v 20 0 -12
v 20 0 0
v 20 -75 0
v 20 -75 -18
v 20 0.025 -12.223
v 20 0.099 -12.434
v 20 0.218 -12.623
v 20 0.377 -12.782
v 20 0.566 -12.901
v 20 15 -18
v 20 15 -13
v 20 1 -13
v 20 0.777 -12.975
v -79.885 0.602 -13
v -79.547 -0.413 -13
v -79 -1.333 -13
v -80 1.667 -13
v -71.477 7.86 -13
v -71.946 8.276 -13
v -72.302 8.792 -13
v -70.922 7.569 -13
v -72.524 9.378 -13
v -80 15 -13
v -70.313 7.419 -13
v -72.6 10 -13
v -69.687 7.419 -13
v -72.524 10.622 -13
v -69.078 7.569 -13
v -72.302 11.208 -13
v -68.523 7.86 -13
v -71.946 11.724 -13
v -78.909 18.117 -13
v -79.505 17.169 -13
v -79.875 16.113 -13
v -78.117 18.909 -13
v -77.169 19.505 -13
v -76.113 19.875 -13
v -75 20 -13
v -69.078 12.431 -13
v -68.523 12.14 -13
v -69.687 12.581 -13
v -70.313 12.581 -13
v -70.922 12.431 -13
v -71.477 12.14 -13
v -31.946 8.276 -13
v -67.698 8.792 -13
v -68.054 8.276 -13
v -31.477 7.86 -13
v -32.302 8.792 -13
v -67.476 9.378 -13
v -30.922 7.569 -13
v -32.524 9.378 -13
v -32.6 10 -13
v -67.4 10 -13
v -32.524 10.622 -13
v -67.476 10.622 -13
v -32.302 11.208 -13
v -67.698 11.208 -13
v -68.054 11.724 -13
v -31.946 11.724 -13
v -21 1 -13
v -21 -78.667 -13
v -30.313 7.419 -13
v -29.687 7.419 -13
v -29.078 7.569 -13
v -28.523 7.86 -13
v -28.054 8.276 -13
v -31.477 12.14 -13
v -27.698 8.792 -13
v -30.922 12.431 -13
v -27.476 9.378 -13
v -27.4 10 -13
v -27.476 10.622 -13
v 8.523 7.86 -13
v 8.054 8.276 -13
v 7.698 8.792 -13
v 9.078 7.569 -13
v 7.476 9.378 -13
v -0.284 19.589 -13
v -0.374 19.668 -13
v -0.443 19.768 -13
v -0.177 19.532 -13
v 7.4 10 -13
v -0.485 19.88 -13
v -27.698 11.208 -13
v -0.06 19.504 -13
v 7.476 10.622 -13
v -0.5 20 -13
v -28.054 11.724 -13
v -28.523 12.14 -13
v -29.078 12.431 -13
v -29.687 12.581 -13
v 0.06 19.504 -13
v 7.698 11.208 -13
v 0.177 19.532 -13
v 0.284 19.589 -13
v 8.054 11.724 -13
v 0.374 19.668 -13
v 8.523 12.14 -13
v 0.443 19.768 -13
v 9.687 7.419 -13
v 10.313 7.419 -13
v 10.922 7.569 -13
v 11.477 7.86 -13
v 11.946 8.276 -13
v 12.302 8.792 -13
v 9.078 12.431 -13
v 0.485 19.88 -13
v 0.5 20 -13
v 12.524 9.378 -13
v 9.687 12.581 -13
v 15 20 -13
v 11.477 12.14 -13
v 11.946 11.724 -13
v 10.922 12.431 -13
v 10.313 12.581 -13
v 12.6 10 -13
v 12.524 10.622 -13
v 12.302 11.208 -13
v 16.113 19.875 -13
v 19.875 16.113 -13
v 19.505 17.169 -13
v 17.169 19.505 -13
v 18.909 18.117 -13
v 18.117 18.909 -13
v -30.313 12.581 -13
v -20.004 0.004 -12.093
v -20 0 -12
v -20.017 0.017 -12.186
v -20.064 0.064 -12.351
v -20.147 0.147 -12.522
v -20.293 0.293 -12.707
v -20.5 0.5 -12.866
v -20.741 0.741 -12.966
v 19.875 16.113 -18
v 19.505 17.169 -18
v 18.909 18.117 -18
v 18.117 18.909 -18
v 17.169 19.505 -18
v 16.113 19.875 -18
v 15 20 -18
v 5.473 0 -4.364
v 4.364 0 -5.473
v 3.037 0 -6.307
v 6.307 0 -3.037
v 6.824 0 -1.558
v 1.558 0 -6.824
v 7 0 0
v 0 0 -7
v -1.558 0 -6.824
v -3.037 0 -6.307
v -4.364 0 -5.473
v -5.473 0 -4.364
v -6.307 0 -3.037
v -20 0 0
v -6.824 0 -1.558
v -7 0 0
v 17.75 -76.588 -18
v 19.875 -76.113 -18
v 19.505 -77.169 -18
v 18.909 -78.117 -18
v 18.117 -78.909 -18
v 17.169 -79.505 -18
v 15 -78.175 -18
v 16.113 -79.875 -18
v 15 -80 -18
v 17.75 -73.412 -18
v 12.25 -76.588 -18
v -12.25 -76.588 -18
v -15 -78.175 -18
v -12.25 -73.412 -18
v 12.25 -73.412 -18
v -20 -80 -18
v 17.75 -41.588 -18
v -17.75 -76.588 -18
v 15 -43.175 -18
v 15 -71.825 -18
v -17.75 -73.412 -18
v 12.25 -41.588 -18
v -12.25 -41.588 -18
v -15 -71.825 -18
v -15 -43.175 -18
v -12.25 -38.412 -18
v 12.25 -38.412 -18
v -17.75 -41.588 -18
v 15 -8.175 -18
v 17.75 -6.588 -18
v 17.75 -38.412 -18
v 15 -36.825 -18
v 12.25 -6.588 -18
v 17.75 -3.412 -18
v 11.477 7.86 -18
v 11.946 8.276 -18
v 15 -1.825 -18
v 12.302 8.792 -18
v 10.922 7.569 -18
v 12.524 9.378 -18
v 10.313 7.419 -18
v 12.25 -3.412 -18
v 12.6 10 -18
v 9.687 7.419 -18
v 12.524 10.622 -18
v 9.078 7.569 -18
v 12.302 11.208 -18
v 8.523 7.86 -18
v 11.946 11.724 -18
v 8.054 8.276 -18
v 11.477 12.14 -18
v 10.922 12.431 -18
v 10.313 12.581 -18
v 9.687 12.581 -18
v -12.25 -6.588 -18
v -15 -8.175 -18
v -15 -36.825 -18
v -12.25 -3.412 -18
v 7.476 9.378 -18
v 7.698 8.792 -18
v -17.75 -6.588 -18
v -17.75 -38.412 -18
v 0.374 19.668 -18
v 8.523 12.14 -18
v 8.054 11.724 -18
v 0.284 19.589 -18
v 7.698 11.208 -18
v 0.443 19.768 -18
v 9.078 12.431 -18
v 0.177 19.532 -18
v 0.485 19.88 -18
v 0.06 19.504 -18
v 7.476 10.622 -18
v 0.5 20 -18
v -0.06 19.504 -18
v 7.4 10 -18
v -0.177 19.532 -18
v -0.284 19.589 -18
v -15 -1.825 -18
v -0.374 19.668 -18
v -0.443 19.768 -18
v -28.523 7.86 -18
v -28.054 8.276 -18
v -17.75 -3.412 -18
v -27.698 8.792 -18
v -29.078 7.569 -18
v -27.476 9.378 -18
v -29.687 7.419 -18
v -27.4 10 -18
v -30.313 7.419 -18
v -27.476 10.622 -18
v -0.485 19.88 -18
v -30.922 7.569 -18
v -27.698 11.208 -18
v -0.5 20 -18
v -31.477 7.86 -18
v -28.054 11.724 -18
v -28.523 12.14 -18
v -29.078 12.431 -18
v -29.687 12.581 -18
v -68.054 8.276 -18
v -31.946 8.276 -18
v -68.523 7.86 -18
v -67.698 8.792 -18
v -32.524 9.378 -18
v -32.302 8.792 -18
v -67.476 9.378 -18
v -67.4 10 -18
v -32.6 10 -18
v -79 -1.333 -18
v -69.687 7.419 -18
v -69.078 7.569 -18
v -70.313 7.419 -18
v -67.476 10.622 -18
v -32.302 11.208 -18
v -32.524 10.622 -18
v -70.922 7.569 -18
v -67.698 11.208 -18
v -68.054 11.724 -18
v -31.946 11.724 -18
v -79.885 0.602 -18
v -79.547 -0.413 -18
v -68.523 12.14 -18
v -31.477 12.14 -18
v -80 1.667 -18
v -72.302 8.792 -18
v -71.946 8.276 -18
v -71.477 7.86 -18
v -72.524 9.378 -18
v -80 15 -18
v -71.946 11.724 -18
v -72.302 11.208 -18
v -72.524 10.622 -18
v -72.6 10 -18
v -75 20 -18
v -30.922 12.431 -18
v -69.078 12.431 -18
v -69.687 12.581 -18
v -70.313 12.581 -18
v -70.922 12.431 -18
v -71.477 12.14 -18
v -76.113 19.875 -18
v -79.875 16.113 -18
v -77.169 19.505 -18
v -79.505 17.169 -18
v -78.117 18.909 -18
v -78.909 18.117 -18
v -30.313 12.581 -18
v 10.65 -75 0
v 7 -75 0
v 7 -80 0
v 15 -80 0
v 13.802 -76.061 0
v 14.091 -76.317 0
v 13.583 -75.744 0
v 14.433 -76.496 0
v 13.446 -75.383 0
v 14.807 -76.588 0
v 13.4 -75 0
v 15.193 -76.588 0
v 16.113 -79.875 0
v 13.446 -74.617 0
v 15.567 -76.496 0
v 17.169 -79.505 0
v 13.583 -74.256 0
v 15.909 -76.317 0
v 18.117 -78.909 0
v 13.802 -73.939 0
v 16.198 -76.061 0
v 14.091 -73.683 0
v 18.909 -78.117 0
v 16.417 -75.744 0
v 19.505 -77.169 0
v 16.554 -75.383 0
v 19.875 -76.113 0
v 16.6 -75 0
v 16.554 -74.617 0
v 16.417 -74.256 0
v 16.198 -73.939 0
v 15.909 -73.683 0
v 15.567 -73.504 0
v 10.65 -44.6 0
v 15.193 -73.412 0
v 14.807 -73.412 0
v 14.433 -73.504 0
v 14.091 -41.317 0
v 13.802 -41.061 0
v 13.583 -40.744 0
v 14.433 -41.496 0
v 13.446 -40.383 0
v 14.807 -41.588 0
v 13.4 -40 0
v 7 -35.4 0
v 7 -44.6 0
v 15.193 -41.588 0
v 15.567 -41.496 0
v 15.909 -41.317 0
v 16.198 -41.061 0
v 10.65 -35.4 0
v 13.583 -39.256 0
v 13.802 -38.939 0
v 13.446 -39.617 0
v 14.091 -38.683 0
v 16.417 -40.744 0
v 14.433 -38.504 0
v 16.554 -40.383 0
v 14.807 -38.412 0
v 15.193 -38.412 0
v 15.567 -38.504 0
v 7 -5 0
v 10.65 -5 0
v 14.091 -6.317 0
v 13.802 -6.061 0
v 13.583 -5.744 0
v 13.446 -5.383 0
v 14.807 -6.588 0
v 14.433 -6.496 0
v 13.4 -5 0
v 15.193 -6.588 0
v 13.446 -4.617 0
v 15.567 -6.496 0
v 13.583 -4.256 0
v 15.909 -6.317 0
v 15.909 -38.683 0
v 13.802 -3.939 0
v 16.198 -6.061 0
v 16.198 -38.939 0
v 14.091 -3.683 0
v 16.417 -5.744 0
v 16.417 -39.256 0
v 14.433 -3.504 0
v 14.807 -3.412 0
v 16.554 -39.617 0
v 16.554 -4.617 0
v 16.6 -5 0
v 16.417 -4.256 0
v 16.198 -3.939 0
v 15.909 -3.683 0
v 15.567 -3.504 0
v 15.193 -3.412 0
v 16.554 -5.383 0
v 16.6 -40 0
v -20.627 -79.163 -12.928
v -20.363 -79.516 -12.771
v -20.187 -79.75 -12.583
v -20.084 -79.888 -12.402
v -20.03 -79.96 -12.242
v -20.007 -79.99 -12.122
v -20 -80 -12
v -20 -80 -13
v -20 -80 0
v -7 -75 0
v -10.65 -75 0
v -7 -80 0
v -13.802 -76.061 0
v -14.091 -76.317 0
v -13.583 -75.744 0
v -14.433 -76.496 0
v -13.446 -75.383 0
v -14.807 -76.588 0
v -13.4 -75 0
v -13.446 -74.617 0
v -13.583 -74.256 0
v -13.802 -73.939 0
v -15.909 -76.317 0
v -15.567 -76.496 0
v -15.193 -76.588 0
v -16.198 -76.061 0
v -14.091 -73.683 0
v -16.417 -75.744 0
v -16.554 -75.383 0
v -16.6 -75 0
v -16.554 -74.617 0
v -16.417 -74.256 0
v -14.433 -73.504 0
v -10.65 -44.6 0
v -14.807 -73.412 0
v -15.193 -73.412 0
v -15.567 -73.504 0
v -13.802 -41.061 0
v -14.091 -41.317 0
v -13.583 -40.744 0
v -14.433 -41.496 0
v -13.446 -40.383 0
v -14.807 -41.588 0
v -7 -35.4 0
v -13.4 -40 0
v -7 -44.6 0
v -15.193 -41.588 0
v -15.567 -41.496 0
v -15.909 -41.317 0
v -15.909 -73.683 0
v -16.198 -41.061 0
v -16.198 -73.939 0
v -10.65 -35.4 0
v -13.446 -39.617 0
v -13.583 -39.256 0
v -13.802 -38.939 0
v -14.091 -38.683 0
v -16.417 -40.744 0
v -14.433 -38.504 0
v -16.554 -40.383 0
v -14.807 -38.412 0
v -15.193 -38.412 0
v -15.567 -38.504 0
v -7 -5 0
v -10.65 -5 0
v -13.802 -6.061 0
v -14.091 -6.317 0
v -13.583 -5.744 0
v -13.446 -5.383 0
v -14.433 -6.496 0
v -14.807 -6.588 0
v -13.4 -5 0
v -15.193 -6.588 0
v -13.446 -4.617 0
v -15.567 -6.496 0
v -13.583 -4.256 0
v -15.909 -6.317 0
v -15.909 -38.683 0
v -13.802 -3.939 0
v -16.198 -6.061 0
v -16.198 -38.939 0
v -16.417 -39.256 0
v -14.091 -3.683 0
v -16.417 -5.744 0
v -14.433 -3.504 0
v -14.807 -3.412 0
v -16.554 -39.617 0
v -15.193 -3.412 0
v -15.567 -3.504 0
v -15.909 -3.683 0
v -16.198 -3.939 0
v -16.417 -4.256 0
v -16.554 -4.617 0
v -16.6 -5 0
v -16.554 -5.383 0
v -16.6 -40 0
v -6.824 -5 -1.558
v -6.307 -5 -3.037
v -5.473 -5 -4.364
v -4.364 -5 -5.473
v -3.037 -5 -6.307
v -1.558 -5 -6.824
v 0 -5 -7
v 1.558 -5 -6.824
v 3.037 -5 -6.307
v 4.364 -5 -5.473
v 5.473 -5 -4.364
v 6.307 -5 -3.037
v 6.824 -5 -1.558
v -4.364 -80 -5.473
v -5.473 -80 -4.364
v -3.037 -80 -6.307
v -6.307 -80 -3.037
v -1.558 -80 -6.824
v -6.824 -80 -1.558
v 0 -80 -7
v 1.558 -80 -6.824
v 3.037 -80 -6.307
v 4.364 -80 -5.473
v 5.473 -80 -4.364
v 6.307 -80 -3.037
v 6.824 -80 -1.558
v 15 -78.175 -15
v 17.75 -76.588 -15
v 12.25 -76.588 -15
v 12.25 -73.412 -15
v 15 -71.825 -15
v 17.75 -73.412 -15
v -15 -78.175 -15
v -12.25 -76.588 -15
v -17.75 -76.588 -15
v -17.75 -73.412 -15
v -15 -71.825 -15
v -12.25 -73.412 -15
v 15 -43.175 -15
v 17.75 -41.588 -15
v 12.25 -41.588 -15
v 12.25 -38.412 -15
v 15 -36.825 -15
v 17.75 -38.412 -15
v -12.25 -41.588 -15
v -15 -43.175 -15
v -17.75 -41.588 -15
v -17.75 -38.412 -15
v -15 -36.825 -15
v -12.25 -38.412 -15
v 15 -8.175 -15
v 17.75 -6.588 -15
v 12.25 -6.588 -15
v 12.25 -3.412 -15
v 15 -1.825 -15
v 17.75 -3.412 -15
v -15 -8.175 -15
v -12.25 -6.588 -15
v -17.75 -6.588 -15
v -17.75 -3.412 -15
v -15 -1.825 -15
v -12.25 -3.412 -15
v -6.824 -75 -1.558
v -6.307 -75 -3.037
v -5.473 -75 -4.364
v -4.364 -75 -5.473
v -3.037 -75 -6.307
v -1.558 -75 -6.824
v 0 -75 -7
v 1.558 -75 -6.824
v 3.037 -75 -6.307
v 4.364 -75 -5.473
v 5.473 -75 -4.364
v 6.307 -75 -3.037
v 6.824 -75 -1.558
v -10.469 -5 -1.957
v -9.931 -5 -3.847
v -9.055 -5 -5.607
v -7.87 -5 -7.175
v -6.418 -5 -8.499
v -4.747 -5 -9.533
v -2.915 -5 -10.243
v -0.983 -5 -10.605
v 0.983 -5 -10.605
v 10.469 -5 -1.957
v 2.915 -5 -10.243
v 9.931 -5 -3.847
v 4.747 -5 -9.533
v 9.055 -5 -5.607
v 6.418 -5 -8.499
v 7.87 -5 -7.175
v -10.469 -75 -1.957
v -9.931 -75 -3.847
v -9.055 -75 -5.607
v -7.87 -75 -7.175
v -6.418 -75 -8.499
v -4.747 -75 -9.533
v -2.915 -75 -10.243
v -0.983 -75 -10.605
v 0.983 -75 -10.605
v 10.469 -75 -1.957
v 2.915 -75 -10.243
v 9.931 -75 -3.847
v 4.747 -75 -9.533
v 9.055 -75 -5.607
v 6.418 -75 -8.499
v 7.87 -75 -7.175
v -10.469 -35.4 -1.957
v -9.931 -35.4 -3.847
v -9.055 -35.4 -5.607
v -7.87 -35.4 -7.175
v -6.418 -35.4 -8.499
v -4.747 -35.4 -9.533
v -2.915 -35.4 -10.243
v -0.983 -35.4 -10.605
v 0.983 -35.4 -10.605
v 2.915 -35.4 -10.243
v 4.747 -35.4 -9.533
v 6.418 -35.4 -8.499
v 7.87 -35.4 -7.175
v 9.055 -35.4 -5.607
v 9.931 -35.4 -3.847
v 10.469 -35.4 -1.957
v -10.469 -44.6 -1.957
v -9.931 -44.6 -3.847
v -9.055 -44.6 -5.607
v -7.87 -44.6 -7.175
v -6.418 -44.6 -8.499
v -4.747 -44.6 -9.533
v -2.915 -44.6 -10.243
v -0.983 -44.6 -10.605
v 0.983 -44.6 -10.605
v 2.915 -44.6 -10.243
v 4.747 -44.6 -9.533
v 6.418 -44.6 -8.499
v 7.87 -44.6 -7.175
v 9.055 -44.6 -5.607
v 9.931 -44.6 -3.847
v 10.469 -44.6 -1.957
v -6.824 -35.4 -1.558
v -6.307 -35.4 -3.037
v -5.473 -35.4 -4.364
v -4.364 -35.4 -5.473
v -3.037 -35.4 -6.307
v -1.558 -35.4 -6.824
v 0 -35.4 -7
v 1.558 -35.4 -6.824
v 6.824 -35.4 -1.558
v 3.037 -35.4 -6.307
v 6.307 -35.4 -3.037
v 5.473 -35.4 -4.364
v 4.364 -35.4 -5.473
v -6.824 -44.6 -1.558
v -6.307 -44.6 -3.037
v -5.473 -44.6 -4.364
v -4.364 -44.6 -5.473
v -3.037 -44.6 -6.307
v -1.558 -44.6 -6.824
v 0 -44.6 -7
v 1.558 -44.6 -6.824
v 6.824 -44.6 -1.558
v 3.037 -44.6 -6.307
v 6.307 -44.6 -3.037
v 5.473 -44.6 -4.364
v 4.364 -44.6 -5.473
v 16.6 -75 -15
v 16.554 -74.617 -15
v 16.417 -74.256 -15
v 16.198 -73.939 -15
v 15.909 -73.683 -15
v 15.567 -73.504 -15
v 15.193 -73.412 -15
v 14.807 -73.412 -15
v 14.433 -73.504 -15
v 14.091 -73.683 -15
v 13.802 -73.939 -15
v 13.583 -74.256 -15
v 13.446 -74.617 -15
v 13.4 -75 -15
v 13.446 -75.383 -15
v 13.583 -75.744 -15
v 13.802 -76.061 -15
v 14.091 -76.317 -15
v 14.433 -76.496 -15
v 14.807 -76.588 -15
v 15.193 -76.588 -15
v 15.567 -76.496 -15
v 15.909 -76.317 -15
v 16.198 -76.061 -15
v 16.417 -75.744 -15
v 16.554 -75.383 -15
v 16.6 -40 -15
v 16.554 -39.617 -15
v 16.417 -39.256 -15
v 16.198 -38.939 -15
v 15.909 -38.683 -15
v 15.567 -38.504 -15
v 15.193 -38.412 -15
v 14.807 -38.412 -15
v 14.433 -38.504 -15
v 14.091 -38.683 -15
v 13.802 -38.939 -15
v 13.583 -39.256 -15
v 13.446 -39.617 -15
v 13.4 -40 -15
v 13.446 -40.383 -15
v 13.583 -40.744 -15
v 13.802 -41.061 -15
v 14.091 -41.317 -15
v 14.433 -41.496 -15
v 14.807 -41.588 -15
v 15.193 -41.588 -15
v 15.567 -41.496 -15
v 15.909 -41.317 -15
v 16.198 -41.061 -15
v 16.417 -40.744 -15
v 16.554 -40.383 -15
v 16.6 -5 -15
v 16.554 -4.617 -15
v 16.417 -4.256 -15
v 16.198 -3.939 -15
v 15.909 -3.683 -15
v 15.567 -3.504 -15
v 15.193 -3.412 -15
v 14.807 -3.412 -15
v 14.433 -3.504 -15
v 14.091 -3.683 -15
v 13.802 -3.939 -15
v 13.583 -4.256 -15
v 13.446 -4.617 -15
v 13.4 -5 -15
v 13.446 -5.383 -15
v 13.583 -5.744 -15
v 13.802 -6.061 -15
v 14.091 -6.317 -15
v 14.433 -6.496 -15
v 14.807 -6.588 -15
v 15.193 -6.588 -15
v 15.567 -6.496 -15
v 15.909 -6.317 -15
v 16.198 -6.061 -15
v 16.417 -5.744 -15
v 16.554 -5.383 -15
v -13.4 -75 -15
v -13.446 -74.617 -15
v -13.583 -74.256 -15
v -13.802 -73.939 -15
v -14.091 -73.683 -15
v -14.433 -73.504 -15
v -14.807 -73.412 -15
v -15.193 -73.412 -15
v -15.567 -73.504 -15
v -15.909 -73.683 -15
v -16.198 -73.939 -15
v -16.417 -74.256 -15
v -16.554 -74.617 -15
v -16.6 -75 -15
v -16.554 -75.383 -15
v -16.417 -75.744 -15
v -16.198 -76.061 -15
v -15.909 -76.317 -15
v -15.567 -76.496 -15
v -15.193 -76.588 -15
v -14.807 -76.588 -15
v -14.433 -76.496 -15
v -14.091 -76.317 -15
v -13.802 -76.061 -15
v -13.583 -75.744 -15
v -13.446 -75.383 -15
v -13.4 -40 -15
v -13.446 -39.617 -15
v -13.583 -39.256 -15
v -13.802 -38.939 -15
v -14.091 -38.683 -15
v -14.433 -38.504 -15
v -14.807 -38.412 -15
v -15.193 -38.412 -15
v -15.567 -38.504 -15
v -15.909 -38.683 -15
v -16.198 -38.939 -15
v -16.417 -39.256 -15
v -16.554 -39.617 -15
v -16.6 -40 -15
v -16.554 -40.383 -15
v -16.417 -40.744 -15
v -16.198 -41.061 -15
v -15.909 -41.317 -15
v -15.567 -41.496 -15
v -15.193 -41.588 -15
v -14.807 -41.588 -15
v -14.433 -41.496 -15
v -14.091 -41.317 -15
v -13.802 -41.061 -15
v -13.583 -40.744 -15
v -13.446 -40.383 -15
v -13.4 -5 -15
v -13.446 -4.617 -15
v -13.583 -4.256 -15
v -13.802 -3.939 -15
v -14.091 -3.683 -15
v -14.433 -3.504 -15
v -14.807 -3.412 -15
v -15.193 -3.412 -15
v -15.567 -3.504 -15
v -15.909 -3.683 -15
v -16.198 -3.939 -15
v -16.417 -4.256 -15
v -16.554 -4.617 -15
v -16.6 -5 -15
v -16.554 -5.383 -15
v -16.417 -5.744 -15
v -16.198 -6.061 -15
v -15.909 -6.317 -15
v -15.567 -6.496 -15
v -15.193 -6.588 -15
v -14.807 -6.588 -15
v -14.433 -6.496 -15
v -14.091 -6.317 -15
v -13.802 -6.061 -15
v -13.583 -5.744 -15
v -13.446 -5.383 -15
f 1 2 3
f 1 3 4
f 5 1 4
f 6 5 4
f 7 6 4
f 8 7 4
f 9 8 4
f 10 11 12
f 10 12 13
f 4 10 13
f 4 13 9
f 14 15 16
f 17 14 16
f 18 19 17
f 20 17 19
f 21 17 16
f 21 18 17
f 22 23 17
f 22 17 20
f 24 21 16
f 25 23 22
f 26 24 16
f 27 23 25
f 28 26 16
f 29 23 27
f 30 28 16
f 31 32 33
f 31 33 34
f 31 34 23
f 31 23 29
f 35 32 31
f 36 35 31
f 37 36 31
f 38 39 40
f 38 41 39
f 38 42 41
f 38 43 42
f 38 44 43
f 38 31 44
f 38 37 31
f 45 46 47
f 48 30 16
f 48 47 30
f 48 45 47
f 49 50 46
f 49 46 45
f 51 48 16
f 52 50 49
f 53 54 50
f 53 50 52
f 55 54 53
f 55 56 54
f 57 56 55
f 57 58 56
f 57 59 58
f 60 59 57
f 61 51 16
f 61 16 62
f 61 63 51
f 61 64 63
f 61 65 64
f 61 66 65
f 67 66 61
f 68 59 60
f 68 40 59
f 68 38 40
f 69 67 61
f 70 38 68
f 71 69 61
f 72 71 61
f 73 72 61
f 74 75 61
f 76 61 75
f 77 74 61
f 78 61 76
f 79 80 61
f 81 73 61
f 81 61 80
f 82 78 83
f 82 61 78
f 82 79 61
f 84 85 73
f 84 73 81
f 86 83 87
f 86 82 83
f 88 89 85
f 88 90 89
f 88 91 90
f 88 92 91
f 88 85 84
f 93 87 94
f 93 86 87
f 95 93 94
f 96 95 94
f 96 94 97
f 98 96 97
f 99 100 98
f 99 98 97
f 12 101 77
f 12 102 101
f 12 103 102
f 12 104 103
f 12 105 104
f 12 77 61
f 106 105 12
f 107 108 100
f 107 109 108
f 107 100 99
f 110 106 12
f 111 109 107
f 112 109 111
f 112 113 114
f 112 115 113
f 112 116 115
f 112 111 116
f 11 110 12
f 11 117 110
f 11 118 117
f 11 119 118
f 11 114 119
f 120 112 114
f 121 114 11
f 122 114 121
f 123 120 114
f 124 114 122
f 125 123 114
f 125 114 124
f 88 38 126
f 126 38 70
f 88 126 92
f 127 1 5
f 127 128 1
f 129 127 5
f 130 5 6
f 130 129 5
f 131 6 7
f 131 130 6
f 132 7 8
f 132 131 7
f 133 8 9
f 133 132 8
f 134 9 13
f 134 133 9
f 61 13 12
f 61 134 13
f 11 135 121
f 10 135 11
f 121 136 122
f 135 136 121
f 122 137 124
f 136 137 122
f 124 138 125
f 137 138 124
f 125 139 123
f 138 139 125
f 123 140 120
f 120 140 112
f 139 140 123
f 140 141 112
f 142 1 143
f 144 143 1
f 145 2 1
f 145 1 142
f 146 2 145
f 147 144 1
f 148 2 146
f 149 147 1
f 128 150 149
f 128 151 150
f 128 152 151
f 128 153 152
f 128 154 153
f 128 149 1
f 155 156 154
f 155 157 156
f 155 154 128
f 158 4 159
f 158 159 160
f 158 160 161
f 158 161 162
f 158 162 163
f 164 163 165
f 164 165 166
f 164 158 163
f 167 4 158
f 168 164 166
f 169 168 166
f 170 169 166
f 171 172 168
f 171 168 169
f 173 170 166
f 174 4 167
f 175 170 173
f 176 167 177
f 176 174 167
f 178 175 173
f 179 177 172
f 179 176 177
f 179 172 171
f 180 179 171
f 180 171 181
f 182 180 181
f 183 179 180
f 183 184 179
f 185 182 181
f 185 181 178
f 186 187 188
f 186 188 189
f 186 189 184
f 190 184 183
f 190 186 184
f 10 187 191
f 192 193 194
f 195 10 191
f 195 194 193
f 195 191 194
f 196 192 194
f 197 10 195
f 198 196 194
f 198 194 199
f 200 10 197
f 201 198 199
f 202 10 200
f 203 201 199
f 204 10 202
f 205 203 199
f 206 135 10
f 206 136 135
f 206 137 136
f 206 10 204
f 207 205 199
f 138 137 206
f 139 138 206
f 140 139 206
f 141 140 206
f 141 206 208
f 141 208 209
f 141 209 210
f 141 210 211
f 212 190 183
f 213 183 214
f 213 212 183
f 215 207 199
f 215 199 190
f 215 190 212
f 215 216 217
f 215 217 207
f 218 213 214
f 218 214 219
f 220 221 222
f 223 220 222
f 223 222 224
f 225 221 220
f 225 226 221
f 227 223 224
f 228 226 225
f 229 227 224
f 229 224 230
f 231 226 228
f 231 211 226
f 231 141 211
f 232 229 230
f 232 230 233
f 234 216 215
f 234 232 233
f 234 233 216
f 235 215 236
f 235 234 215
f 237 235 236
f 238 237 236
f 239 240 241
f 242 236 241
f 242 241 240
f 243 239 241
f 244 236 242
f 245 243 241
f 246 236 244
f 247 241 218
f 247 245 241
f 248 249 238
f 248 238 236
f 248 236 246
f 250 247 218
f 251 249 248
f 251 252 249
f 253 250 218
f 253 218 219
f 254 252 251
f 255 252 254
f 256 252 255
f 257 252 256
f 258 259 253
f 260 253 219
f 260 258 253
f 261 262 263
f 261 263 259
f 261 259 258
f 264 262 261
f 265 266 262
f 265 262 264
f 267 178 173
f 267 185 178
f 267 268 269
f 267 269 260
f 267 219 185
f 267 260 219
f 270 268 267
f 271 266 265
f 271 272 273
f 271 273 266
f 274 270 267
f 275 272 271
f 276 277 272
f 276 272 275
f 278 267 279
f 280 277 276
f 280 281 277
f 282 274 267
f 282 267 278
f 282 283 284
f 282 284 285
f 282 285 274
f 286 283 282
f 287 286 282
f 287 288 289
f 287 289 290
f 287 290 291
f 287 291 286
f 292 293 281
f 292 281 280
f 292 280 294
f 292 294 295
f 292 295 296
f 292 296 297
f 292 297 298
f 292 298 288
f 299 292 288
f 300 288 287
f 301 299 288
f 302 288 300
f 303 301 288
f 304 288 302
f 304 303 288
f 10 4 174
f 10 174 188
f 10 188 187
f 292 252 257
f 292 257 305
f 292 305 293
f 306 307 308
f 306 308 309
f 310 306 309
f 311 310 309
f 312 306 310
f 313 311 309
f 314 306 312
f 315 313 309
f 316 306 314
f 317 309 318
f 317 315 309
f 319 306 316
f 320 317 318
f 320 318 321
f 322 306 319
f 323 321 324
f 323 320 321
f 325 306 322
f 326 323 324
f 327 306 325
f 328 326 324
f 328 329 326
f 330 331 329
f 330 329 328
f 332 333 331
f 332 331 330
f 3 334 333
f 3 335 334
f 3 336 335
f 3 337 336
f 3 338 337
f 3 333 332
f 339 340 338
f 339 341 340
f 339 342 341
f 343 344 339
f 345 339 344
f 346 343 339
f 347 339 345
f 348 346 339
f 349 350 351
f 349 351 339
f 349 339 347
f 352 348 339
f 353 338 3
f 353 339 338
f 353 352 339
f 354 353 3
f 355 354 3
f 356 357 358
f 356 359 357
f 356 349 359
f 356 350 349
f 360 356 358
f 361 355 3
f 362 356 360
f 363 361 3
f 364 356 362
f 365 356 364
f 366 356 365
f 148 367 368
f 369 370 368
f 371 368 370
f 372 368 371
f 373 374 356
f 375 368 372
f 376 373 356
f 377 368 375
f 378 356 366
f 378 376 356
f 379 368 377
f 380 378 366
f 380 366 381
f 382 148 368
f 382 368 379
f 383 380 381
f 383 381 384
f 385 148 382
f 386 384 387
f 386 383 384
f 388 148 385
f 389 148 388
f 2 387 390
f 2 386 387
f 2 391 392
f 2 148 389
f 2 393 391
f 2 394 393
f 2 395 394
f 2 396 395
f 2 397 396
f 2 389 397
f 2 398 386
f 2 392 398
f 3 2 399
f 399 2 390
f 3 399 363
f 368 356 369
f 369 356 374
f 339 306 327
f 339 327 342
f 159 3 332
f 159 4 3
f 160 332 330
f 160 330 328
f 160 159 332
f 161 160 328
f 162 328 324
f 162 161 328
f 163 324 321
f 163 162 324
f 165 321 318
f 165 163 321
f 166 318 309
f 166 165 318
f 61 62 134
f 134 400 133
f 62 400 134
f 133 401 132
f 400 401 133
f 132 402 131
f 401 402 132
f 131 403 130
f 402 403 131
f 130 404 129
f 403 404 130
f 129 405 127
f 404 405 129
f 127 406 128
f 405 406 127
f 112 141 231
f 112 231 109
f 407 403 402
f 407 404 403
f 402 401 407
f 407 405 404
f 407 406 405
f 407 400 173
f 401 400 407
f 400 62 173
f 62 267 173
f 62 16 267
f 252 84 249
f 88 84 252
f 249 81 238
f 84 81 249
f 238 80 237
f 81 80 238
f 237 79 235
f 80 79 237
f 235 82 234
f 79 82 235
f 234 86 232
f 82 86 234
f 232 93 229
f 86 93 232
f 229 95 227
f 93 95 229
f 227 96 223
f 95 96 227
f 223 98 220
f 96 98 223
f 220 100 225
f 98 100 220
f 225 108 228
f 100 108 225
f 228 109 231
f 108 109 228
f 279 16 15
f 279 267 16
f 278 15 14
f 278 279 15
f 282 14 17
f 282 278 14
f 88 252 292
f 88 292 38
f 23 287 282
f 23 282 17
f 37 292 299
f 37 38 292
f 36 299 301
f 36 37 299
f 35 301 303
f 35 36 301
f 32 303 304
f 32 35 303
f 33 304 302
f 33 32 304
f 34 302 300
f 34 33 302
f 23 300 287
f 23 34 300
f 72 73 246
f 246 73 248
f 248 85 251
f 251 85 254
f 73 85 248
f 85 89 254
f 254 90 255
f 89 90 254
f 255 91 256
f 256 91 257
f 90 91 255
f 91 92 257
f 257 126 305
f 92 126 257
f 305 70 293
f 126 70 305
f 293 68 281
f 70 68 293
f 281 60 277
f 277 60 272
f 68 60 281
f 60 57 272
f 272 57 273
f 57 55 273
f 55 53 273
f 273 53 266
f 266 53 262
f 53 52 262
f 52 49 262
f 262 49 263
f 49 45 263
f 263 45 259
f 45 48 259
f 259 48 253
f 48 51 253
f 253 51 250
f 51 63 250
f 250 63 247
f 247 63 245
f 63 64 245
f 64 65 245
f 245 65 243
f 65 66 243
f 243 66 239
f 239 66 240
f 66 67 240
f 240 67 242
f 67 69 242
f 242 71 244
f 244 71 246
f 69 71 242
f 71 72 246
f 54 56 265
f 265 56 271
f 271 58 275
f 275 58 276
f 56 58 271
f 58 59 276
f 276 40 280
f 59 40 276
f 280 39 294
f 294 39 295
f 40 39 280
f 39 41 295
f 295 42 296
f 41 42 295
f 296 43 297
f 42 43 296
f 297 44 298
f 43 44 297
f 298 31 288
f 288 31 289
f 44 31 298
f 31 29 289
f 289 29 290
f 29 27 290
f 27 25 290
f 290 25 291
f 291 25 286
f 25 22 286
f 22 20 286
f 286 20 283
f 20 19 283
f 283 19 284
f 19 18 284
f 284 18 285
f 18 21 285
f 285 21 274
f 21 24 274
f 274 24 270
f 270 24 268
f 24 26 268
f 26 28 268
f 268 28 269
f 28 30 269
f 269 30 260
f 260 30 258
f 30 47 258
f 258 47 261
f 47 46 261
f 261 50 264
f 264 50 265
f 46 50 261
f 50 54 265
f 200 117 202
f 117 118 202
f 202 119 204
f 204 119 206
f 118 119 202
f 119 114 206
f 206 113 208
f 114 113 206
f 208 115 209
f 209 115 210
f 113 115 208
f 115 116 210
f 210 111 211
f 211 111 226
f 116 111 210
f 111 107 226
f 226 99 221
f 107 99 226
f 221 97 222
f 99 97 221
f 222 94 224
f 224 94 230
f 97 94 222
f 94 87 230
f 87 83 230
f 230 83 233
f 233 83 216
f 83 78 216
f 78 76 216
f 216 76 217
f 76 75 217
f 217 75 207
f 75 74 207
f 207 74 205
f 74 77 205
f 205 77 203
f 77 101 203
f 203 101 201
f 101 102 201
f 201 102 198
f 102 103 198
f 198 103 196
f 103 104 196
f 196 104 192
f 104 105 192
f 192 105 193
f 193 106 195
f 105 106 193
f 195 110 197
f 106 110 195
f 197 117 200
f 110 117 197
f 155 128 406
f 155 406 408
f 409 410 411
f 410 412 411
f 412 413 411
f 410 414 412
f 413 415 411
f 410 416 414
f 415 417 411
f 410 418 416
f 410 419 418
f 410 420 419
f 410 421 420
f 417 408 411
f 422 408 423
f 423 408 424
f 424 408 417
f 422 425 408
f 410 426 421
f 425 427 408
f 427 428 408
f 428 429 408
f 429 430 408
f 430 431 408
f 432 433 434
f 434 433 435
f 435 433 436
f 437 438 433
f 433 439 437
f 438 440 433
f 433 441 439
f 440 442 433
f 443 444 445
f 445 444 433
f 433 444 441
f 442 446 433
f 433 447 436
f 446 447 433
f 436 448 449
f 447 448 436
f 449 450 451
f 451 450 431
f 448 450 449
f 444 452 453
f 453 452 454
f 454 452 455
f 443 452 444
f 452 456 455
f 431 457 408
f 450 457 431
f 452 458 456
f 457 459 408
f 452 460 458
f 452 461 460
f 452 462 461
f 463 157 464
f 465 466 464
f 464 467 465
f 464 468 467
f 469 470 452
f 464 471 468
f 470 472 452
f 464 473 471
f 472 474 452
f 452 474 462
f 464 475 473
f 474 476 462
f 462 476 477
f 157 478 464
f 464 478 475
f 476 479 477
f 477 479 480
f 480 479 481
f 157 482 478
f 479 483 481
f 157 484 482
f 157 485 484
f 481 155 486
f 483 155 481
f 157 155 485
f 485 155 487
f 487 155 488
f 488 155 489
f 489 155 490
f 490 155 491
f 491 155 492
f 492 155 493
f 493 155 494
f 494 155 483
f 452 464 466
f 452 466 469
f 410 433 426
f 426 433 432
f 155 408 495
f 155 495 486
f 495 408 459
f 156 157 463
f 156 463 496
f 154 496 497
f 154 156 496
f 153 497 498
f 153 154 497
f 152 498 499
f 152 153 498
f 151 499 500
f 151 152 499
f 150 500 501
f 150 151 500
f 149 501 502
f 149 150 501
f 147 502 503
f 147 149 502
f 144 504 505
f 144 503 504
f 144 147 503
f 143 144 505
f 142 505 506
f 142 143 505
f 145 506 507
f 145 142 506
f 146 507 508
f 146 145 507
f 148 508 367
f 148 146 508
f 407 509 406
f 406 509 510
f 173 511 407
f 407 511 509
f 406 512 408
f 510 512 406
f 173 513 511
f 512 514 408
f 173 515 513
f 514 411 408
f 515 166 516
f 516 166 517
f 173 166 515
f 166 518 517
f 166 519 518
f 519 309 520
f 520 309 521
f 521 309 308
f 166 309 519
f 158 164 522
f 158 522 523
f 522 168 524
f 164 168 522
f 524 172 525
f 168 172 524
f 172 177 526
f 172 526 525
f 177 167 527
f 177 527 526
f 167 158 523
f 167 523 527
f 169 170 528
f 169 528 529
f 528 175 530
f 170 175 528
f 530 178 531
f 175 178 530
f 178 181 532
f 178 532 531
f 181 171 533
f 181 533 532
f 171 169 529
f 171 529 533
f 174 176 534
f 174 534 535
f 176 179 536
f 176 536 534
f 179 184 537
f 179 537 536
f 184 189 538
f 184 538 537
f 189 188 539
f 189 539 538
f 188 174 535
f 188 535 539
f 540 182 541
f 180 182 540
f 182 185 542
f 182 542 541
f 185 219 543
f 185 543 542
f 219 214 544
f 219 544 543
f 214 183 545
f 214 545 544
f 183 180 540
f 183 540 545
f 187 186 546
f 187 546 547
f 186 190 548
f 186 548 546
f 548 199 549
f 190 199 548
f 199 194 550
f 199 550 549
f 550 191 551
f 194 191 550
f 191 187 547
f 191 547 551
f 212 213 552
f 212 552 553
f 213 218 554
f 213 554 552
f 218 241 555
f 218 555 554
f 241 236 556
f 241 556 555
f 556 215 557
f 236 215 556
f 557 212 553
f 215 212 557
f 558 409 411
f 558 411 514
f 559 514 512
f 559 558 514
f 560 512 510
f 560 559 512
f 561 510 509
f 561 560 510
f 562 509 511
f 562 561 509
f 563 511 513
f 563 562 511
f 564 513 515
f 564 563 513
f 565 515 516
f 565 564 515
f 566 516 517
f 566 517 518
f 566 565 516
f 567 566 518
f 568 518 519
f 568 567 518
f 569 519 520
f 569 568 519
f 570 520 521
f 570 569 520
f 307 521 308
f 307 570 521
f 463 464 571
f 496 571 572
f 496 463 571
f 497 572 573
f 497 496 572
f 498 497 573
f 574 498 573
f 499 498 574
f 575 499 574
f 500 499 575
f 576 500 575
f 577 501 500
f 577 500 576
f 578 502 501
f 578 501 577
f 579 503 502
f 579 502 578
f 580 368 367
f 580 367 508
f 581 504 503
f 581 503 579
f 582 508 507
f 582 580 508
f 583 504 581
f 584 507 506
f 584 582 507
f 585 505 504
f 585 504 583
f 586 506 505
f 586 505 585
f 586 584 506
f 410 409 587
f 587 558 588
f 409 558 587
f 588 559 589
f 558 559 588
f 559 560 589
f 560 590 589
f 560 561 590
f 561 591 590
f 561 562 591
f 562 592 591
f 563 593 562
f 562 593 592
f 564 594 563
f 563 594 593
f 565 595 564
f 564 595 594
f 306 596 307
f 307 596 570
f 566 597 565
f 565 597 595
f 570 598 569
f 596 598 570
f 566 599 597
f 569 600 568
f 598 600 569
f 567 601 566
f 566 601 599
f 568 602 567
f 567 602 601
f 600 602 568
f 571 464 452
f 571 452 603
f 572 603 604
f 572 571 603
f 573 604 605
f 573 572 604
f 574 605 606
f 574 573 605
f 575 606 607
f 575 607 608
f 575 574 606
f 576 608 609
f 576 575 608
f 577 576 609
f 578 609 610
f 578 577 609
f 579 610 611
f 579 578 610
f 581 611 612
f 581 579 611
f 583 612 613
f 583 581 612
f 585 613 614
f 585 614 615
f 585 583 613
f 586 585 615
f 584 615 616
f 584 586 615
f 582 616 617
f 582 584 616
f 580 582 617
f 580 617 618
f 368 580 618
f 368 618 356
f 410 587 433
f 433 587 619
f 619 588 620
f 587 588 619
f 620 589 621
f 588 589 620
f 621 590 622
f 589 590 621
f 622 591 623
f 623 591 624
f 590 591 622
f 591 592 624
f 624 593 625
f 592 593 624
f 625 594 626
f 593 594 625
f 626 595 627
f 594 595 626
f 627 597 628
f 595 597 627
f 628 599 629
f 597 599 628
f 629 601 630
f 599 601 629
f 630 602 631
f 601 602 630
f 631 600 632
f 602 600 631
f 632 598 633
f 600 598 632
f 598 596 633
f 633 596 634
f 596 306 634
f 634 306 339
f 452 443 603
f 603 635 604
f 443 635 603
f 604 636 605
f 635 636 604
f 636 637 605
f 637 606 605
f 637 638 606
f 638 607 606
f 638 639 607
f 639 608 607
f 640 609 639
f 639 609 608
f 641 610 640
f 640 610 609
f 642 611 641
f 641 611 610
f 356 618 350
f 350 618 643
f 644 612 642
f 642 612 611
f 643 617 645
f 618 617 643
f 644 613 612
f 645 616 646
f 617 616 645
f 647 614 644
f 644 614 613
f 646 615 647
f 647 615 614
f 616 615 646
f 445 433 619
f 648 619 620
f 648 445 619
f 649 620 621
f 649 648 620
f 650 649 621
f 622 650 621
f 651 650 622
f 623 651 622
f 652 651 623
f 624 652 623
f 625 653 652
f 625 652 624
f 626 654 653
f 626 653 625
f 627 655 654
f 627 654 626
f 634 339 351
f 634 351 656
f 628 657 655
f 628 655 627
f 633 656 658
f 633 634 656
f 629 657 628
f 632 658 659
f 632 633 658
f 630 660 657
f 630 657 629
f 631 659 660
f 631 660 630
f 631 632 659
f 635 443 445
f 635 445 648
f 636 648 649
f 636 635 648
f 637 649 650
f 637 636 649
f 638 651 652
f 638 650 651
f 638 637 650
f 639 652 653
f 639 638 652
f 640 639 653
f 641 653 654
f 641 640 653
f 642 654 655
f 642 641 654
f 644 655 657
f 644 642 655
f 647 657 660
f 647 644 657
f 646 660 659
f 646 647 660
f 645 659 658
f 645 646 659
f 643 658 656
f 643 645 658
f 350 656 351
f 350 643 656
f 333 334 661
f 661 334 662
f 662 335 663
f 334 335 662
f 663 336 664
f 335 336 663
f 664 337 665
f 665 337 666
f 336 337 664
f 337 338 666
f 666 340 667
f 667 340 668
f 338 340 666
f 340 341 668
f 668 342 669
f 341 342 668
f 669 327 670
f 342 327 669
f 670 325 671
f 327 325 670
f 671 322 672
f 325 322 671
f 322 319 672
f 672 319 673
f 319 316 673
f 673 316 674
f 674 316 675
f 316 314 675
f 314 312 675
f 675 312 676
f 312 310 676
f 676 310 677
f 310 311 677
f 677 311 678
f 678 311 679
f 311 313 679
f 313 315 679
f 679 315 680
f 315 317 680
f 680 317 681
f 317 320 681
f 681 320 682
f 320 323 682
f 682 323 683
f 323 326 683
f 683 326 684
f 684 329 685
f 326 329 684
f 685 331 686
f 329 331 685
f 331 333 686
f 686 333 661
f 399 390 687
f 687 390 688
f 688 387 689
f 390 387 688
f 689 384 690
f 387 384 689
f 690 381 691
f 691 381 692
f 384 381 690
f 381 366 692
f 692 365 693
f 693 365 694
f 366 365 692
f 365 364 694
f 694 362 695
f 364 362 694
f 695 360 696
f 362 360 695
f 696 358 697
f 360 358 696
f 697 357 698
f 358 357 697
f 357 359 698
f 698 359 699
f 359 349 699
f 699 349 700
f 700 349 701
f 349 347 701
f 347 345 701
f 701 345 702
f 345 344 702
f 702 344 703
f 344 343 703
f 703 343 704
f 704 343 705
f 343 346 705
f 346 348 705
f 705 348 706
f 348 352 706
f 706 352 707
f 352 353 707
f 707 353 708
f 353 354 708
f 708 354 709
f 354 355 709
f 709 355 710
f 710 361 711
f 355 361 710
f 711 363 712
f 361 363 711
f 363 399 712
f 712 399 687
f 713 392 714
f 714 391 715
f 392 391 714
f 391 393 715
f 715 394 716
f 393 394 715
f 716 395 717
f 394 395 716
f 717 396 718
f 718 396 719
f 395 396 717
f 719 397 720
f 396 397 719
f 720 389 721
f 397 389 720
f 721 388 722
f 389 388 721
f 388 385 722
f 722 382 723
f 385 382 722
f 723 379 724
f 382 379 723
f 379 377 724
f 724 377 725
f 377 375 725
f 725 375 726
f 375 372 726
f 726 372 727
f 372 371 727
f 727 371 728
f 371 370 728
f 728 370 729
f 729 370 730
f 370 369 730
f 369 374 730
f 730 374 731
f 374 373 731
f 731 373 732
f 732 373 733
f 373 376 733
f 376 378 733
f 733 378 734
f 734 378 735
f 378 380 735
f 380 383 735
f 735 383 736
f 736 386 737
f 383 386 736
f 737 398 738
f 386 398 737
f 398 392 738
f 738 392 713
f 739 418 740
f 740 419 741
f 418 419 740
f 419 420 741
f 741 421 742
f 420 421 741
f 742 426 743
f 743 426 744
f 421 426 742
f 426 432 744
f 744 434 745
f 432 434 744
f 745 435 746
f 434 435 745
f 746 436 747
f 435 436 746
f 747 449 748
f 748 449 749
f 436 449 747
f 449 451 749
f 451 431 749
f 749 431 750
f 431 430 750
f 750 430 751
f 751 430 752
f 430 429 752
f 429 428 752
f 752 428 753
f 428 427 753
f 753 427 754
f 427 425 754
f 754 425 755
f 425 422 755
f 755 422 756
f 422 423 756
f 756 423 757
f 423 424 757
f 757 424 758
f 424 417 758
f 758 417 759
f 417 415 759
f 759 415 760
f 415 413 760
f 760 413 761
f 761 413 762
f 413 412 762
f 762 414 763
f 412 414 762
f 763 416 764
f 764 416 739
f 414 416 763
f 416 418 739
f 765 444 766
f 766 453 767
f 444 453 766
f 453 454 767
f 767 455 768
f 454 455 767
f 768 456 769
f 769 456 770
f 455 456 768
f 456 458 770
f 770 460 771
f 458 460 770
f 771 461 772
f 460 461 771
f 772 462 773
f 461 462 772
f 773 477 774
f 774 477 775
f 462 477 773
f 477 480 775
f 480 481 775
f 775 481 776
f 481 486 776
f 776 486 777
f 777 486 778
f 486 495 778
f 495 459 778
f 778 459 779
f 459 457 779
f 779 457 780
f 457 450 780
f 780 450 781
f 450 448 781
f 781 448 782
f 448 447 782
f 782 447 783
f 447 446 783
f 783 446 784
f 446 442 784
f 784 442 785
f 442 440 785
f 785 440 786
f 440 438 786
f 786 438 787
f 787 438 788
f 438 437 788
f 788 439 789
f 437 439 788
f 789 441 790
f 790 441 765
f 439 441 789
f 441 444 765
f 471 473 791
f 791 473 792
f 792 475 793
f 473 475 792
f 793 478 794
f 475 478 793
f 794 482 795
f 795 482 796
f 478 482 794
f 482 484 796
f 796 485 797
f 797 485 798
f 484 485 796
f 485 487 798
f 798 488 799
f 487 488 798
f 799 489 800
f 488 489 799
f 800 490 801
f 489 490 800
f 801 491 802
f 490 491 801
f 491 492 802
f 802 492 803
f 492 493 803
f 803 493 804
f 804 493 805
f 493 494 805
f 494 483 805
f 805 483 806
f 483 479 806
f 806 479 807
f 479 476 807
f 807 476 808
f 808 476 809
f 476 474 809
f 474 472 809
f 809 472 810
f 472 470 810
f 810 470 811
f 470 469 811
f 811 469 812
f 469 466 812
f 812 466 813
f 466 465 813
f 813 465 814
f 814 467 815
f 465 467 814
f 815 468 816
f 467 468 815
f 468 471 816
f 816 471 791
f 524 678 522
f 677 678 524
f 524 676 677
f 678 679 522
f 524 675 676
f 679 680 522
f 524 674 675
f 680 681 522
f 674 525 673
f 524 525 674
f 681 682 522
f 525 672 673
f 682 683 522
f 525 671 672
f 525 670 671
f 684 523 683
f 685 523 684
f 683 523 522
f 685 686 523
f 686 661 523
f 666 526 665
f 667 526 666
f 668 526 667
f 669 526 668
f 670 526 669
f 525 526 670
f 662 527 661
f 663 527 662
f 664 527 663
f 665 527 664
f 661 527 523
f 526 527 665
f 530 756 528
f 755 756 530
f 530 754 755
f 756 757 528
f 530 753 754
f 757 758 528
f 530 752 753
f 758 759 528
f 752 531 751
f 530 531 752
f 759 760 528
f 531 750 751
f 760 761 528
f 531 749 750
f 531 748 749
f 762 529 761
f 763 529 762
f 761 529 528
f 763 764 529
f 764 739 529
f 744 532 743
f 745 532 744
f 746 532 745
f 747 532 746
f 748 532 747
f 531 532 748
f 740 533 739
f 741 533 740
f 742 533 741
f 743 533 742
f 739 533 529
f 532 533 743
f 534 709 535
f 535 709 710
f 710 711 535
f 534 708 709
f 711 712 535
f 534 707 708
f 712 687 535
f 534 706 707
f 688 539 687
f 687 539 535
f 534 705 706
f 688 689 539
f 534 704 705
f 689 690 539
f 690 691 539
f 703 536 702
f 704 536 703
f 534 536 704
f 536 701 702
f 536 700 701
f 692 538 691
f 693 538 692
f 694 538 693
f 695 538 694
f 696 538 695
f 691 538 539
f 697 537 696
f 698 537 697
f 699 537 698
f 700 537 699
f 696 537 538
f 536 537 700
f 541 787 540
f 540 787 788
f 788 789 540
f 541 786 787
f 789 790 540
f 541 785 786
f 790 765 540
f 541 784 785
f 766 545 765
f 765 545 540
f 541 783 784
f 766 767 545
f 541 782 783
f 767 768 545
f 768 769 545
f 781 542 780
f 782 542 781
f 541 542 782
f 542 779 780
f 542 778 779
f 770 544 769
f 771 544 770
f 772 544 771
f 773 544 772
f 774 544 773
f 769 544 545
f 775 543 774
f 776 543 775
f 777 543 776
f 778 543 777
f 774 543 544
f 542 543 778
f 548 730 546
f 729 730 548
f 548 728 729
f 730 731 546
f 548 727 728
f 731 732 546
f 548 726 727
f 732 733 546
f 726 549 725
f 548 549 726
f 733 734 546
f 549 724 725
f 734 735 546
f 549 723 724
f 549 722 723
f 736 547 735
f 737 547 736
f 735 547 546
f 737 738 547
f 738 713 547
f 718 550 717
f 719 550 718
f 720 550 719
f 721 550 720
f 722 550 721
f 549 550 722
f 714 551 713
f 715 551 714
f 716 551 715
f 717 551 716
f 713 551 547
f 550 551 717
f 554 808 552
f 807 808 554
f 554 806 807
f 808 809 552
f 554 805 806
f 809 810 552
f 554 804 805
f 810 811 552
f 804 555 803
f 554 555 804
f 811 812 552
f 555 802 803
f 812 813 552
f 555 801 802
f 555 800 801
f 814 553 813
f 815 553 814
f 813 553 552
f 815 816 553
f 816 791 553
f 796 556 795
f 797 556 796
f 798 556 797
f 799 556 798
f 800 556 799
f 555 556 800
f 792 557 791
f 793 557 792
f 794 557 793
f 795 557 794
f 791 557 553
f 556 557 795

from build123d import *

# Parameters (mm, degrees)
PAD_DEPTH       = 80
PAD_DEPTH_BACK  = 20
SKETCH001_R     = 2.6
SKETCH001_R_2   = 1.6
SKETCH001_R_3   = 0.5
POCKET_DEPTH    = 18.001
SKETCH002_W     = 66.71416
SKETCH002_H     = 42.248775
POCKET001_DEPTH = 13
SKETCH003_R     = 10.65
POCKET002_DEPTH = 30.4
SKETCH004_R     = 10.65
POCKET003_DEPTH = 30.4
POCKET004_DEPTH = 3
FILLET_R        = 5
FILLET001_R     = 1


with BuildPart() as part:
    # Sketch → Pad (new body, two sides)
    with BuildSketch(Plane.XZ) as pad_sk:
        with BuildLine():
            Line((-80, -18), (-80, -13))
            Line((-80, -13), (-20, -13))
            Line((-20, -13), (-20, 0))
            Line((-7, 0), (-20, 0))
            ThreePointArc((-7, 0), (0, -7), (7, 0))
            Line((7, 0), (20, 0))
            Line((20, 0), (20, -18))
            Line((20, -18), (-80, -18))
        make_face()
    extrude(amount=PAD_DEPTH)
    extrude(pad_sk.sketch, amount=-PAD_DEPTH_BACK)

    # Sketch001 → Pocket (cut, through all)
    with BuildSketch(Plane.XY):
        with Locations((-70, 10)):
            Circle(SKETCH001_R)
        with Locations((-30, 10)):
            Circle(SKETCH001_R)
        with Locations((10, 10)):
            Circle(SKETCH001_R)
        with Locations((-15, -5)):
            Circle(SKETCH001_R_2)
        with Locations((-15, -40)):
            Circle(SKETCH001_R_2)
        with Locations((-15, -75)):
            Circle(SKETCH001_R_2)
        with Locations((15, -5)):
            Circle(SKETCH001_R_2)
        with Locations((15, -40)):
            Circle(SKETCH001_R_2)
        with Locations((15, -75)):
            Circle(SKETCH001_R_2)
        with Locations((0, 20)):
            Circle(SKETCH001_R_3)
        Polygon((-80, 0), (-80, -80), (-20, -80), align=None)
    extrude(amount=-POCKET_DEPTH, mode=Mode.SUBTRACT)

    # Sketch002 → Pocket001 (cut)
    with BuildSketch(Plane.XY):
        with Locations((0, 21.124387)):
            Rectangle(SKETCH002_W, SKETCH002_H)
    extrude(amount=-POCKET001_DEPTH, mode=Mode.SUBTRACT)

    # Sketch003 (on DatumPlane) → Pocket002 (cut)
    with BuildSketch(Plane.XZ.offset(5)):
        Circle(SKETCH003_R)
    extrude(amount=POCKET002_DEPTH, mode=Mode.SUBTRACT)

    # Sketch004 (on DatumPlane) → Pocket003 (cut)
    with BuildSketch(Plane.XZ.offset(75)):
        Circle(SKETCH004_R)
    extrude(amount=-POCKET003_DEPTH, mode=Mode.SUBTRACT)

    # Sketch005 (on DatumPlane) → Pocket004 (cut)
    with BuildSketch(Plane.XY.offset(-18)):
        Polygon((-12.25, -6.587713), (-12.25, -3.412287), (-15, -1.824574), (-17.75, -3.412287), (-17.75, -6.587713), (-15, -8.175426), align=None)
        Polygon((17.75, -6.587713), (17.75, -3.412287), (15, -1.824574), (12.25, -3.412287), (12.25, -6.587713), (15, -8.175426), align=None)
        Polygon((-12.25, -41.587713), (-12.25, -38.412287), (-15, -36.824574), (-17.75, -38.412287), (-17.75, -41.587713), (-15, -43.175426), align=None)
        Polygon((17.75, -41.587713), (17.75, -38.412287), (15, -36.824574), (12.25, -38.412287), (12.25, -41.587713), (15, -43.175426), align=None)
        Polygon((-12.25, -76.587713), (-12.25, -73.412287), (-15, -71.824574), (-17.75, -73.412287), (-17.75, -76.587713), (-15, -78.175426), align=None)
        Polygon((17.75, -76.587713), (17.75, -73.412287), (15, -71.824574), (12.25, -73.412287), (12.25, -76.587713), (15, -78.175426), align=None)
    extrude(amount=POCKET004_DEPTH, mode=Mode.SUBTRACT)

    # Fillet
    fillet_edges = [part.edges().sort_by_distance(p)[0] for p in [
        (-80, 20, -15.5),
        (-80, 0, -15.5),
        (20, -80, -9),
        (20, 20, -15.5),
    ]]
    fillet(fillet_edges, radius=FILLET_R)

    # Fillet001
    fillet001_edges = [part.edges().sort_by_distance(p)[0] for p in [
        (-20, -40, -13),
        (0, 0, -13),
    ]]
    fillet(fillet001_edges, radius=FILLET001_R)


solid = part.part
